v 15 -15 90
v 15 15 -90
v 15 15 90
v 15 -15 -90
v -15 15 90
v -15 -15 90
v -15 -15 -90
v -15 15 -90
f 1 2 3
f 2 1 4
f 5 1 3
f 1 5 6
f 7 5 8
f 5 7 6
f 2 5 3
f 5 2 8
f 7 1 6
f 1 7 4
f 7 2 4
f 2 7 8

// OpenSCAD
// Define the dimensions of rectangular blocks
block_sizes = [
    [30, 30, 30],  // rectangular_block_1: [width, depth, height]
    [30, 30, 30],  // rectangular_block_2: [width, depth, height]
    [30, 30, 30],  // rectangular_block_3: [width, depth, height]
    [30, 30, 30],  // rectangular_block_4: [width, depth, height]
    [30, 30, 30],  // rectangular_block_5: [width, depth, height]
    [30, 30, 30]   // rectangular_block_6: [width, depth, height]
];

// Function to create a rectangular block with specific dimensions
module rectangular_block(size) {
    cube(size, center = true);
}

// Assemble the blocks into layers based on the graph_dict
module flexible_coupling() {
    // Layer 1: rectangular_block_6 (topmost layer)
    translate([0, 0, 75]) rectangular_block(block_sizes[5]);
    
    // Layer 2: rectangular_block_5
    translate([0, 0, 45]) rectangular_block(block_sizes[4]);
    
    // Layer 3: rectangular_block_4
    translate([0, 0, 15]) rectangular_block(block_sizes[3]);
    
    // Layer 4: rectangular_block_3
    translate([0, 0, -15]) rectangular_block(block_sizes[2]);
    
    // Layer 5: rectangular_block_2
    translate([0, 0, -45]) rectangular_block(block_sizes[1]);
    
    // Layer 6: rectangular_block_1 (bottommost layer)
    translate([0, 0, -75]) rectangular_block(block_sizes[0]);
}

// Render the flexible coupling
flexible_coupling();
